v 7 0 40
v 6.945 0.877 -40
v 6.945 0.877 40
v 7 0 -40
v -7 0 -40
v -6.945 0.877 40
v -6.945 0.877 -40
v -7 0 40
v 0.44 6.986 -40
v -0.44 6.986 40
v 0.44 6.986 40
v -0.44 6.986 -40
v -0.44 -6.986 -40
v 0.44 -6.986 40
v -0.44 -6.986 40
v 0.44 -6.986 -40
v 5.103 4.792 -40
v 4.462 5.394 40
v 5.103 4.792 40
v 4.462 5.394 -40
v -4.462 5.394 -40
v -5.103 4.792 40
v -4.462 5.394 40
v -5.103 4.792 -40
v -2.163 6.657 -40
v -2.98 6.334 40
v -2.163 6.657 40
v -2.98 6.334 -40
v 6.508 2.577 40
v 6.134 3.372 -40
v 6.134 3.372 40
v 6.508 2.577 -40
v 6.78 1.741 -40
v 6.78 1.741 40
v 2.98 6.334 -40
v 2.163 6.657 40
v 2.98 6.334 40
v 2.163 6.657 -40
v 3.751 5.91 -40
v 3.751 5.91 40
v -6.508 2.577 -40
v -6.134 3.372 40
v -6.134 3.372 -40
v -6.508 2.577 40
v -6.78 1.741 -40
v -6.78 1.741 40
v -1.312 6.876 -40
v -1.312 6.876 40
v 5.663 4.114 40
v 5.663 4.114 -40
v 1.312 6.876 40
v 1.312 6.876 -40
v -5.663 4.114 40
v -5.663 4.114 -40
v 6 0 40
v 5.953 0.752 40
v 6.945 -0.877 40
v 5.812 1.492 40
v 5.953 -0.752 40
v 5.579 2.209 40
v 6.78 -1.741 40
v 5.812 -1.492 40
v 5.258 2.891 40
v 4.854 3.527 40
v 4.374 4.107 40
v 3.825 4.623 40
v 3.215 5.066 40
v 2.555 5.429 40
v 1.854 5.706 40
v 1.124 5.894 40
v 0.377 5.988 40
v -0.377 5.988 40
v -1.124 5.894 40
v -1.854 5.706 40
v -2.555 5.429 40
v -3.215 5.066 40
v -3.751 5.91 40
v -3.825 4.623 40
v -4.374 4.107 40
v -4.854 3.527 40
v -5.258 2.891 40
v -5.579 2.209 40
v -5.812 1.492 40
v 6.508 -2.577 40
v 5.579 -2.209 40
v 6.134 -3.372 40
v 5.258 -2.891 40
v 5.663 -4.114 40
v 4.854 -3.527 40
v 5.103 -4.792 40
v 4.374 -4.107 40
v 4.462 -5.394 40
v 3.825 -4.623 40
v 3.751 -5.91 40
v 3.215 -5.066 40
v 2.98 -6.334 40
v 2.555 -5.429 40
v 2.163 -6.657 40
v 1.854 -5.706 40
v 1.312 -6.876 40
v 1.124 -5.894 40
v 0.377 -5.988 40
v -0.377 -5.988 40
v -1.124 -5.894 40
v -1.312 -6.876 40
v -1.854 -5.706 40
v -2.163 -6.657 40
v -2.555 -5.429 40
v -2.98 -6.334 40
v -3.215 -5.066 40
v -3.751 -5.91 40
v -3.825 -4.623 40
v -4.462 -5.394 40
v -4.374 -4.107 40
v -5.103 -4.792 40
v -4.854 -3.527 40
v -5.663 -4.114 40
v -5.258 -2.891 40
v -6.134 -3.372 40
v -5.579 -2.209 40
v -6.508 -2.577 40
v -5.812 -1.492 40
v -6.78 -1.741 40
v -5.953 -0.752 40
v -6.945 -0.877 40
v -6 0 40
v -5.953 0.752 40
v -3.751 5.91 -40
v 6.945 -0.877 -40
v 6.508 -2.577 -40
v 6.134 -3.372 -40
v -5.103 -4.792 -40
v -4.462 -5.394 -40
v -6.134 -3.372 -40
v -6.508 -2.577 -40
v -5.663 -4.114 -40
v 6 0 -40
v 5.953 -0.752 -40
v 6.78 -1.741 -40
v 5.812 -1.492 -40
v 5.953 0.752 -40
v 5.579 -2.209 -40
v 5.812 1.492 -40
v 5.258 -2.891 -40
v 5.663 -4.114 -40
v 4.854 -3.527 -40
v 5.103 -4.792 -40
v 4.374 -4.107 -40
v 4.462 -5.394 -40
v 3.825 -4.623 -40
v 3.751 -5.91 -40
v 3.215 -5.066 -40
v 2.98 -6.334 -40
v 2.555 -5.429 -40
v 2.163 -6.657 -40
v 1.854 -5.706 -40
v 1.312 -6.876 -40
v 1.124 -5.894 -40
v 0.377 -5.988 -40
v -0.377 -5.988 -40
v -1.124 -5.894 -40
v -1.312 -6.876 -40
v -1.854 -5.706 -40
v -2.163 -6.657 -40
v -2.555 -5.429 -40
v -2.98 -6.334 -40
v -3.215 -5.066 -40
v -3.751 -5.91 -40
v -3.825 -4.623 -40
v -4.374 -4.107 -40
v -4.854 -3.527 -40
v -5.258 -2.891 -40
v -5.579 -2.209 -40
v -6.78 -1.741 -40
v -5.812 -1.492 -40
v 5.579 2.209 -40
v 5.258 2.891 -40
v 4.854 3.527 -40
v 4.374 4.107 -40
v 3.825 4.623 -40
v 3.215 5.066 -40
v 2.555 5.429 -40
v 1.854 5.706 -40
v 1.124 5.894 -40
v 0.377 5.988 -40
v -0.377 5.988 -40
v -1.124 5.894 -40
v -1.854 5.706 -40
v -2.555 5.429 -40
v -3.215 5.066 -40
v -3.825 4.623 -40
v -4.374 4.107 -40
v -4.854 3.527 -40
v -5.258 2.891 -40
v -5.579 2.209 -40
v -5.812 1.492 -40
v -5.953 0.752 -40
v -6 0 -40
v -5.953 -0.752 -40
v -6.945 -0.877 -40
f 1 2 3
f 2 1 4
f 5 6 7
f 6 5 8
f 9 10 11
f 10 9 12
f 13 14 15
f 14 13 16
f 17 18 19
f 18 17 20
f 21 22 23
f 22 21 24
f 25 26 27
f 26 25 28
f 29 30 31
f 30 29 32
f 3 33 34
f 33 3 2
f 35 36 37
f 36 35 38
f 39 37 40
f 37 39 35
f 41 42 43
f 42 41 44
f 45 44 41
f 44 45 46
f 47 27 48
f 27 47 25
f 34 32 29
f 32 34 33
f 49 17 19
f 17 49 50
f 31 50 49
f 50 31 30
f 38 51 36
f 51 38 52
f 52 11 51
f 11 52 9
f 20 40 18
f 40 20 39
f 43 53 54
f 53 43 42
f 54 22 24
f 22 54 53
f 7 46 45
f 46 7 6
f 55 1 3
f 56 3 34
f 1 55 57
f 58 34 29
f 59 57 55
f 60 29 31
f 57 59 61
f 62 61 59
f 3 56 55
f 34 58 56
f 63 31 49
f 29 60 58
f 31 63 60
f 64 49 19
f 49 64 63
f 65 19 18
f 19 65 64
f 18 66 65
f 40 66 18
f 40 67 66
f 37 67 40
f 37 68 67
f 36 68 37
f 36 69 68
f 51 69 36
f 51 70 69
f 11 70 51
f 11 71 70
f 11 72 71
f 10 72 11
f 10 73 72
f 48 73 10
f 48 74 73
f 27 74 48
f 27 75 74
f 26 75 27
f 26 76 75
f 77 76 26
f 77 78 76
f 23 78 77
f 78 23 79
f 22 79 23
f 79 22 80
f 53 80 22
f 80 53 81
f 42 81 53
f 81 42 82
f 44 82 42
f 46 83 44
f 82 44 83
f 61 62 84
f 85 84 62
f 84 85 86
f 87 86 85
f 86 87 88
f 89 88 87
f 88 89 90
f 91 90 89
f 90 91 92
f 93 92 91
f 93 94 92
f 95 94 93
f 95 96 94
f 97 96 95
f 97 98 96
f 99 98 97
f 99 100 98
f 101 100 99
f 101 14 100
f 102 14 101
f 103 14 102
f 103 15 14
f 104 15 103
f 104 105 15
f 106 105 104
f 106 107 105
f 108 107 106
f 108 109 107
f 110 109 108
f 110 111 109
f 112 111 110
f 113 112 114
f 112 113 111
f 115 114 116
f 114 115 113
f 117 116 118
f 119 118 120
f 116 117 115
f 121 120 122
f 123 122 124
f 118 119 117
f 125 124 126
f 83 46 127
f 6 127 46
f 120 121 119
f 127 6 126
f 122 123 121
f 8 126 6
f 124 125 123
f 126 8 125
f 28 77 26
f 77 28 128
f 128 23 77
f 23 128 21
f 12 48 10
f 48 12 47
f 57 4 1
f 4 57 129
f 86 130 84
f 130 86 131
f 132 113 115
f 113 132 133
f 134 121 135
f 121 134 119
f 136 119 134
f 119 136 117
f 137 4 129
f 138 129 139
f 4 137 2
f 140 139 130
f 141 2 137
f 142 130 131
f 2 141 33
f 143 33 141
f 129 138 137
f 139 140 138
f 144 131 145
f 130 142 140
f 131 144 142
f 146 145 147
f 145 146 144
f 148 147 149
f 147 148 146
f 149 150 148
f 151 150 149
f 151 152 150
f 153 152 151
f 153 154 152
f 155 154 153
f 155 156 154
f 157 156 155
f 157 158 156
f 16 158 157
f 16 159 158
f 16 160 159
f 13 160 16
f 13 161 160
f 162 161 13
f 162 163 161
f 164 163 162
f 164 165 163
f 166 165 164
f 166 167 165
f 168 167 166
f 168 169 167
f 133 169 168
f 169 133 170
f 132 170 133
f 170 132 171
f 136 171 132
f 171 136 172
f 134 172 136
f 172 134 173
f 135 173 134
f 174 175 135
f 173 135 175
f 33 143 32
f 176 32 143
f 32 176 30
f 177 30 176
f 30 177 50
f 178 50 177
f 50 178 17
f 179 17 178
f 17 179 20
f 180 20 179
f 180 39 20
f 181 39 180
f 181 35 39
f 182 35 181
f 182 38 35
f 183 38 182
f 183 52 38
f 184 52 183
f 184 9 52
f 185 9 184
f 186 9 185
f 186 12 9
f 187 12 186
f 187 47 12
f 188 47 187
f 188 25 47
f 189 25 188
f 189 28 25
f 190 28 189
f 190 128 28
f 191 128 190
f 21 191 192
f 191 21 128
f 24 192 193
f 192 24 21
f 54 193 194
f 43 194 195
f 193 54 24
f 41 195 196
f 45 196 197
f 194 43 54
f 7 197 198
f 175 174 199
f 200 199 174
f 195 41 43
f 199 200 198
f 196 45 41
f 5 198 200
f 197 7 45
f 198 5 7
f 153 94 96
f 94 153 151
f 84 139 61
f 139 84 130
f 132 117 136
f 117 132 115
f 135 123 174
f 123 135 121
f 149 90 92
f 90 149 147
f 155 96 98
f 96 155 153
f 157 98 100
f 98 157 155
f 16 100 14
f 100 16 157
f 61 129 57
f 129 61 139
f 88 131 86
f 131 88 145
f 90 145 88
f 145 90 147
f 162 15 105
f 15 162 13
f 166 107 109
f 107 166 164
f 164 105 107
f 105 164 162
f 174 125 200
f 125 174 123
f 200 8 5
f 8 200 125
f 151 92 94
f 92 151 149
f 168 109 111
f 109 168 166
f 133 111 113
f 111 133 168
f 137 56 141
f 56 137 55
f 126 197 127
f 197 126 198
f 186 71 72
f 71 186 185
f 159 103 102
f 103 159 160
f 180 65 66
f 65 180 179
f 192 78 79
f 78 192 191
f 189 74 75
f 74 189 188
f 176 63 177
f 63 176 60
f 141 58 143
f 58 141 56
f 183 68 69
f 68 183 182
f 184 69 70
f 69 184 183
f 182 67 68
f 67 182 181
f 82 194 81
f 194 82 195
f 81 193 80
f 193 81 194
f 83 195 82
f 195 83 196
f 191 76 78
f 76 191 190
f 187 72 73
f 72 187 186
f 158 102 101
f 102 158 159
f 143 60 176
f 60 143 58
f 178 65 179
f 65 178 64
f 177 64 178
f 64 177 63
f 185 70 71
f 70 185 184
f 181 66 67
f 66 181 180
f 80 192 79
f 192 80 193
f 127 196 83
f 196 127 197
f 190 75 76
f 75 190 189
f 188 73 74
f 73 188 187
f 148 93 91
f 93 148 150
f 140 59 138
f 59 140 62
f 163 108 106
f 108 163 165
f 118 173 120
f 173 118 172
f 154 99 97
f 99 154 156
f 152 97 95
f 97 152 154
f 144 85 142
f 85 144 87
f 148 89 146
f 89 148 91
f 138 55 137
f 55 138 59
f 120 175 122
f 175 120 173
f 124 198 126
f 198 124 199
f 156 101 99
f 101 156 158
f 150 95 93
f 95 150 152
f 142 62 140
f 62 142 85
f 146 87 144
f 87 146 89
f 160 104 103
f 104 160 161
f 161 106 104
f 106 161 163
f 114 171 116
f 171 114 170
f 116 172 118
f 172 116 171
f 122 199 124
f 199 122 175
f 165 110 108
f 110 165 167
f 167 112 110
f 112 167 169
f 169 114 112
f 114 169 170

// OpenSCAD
$fn = 50;


difference() {
	union() {
		translate(v = [0, 0, -40.0000000000]) {
			cylinder(h = 80, r = 7.0000000000);
		}
	}
	union() {
		translate(v = [0, 0, -100.0000000000]) {
			cylinder(h = 200, r = 6);
		}
	}
}
